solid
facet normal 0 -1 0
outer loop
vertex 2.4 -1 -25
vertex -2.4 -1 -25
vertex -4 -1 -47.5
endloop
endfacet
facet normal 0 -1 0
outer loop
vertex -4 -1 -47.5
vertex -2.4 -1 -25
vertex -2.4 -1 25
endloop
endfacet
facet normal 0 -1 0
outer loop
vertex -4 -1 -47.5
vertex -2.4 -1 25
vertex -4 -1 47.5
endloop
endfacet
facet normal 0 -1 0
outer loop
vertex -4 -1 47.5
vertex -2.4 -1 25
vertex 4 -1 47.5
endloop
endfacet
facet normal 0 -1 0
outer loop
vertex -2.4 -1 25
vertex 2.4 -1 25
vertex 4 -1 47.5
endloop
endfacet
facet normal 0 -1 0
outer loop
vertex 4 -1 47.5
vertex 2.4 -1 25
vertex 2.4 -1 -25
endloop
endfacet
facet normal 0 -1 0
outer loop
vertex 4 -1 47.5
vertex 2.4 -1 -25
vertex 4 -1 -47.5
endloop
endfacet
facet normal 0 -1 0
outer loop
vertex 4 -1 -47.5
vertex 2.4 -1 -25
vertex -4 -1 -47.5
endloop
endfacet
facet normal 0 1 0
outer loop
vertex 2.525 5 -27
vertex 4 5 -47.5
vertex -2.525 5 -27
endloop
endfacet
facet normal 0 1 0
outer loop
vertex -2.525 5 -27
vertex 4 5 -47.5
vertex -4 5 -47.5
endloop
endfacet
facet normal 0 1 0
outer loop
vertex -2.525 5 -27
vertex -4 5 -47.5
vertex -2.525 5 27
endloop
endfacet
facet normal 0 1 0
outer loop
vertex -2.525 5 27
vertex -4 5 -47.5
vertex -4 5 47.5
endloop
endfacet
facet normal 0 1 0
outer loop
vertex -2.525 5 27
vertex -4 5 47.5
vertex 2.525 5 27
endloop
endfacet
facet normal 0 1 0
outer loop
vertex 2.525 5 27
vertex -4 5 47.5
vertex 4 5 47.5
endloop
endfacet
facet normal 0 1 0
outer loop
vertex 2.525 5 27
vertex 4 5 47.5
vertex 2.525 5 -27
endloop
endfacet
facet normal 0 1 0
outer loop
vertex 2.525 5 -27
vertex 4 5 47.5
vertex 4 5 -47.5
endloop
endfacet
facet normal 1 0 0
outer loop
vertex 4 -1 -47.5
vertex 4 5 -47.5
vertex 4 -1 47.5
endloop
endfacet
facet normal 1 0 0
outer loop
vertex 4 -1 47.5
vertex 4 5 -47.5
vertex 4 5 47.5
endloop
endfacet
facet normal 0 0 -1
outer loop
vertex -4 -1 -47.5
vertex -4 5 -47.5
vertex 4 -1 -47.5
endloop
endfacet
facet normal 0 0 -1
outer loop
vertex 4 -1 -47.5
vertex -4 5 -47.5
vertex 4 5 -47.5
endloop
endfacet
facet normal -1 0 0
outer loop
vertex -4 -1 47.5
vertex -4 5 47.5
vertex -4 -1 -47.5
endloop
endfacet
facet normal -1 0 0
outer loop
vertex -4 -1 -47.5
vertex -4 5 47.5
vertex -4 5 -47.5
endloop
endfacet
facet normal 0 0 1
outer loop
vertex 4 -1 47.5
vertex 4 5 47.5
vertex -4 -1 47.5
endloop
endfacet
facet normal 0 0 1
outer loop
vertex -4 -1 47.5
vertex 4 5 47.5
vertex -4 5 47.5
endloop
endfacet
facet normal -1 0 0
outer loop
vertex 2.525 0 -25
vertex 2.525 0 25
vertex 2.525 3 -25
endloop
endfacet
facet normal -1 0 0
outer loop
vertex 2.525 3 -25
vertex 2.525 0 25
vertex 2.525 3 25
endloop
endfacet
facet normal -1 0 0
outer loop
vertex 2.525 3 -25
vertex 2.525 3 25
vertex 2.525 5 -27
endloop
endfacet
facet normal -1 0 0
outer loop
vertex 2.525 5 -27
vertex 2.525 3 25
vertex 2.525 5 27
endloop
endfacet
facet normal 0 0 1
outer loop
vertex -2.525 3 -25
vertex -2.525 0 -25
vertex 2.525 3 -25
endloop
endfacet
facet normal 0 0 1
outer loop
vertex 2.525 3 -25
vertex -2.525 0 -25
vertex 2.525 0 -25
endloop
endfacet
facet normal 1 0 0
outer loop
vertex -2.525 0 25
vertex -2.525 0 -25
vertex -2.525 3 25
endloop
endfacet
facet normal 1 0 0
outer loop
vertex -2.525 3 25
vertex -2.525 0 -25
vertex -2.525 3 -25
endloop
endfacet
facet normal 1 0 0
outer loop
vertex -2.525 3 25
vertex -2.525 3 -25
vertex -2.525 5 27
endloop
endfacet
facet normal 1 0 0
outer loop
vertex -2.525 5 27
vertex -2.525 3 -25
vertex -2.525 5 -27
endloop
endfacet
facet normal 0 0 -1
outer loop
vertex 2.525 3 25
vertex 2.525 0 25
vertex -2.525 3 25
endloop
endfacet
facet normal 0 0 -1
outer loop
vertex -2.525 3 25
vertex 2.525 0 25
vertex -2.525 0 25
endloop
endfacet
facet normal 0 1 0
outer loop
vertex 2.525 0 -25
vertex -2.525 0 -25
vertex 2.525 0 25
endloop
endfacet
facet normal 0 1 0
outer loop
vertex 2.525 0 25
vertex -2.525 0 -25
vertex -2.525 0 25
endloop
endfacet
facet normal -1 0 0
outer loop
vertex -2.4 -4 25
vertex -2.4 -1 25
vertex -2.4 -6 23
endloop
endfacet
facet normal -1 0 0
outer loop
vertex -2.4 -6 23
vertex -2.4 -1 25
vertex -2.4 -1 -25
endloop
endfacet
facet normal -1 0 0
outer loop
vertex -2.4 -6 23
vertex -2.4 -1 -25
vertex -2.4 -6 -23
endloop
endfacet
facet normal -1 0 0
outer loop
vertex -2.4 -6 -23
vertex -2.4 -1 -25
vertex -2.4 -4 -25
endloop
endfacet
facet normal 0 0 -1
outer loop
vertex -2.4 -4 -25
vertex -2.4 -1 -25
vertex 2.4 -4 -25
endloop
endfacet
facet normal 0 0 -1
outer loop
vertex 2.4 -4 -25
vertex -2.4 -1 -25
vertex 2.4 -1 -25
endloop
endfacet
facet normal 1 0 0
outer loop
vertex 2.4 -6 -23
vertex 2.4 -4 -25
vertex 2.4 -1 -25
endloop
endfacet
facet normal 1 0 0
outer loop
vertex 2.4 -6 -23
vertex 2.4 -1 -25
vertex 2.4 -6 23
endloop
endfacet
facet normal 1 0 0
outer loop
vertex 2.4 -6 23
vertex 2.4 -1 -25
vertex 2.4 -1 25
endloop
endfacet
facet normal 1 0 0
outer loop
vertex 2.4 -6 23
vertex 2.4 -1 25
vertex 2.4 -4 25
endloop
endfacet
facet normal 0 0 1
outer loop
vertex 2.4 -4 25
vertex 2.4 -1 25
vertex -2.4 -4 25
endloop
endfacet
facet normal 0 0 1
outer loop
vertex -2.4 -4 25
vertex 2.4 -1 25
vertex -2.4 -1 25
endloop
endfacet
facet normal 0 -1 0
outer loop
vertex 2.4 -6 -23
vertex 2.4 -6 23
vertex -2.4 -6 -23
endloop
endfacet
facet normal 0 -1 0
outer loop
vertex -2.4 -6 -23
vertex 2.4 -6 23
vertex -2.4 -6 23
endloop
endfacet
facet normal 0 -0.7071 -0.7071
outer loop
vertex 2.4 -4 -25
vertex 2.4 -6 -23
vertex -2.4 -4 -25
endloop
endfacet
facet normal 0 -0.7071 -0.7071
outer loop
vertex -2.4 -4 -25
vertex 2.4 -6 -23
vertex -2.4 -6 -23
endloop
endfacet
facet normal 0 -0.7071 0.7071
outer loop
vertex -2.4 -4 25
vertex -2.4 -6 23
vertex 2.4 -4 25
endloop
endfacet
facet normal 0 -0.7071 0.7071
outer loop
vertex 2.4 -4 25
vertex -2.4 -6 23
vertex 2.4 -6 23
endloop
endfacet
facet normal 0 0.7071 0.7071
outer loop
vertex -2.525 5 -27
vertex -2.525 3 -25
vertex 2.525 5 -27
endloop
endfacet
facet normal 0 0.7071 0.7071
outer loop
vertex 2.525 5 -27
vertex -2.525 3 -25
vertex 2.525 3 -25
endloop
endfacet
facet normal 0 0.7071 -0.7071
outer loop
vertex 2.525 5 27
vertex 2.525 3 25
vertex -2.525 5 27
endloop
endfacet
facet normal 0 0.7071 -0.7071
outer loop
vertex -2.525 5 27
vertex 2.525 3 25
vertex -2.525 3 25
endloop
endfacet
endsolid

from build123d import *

# Parameters (mm, degrees)
SKETCH1_W           = 8
SKETCH1_H           = 95
SKETCH1_W_2         = 5.05
SKETCH1_H_2         = 50
BOSS_EXTRUDE1_DEPTH = 5
SKETCH1_2_W         = 8
SKETCH1_2_H         = 95
BOSS_EXTRUDE2_DEPTH = 1
SKETCH2_W           = 4.8
SKETCH2_H           = 50
BOSS_EXTRUDE3_DEPTH = 5
CHAMFER2_SIZE       = 2


with BuildPart() as part:
    # Sketch1 → Boss-Extrude1 (new body)
    with BuildSketch(Plane(origin=(0, 0, 0), x_dir=(1, 0, 0), z_dir=(0, 1, 0))):
        Rectangle(SKETCH1_W, SKETCH1_H)
        Rectangle(SKETCH1_W_2, SKETCH1_H_2, mode=Mode.SUBTRACT)
    extrude(amount=BOSS_EXTRUDE1_DEPTH)

    # Sketch1<2> → Boss-Extrude2 (add)
    with BuildSketch(Plane(origin=(0, 0, 0), x_dir=(1, 0, 0), z_dir=(0, 1, 0))):
        Rectangle(SKETCH1_2_W, SKETCH1_2_H)
    extrude(amount=-BOSS_EXTRUDE2_DEPTH)

    # Sketch2 → Boss-Extrude3 (add)
    with BuildSketch(Plane.XZ.offset(1)):
        Rectangle(SKETCH2_W, SKETCH2_H)
    extrude(amount=BOSS_EXTRUDE3_DEPTH)

    # Chamfer2
    chamfer2_edges = [part.edges().sort_by_distance(p)[0] for p in [
        (0, -6, -25),
        (0, -6, 25),
        (0, 5, -25),
        (0, 5, 25),
    ]]
    chamfer(chamfer2_edges, length=CHAMFER2_SIZE)


solid = part.part
